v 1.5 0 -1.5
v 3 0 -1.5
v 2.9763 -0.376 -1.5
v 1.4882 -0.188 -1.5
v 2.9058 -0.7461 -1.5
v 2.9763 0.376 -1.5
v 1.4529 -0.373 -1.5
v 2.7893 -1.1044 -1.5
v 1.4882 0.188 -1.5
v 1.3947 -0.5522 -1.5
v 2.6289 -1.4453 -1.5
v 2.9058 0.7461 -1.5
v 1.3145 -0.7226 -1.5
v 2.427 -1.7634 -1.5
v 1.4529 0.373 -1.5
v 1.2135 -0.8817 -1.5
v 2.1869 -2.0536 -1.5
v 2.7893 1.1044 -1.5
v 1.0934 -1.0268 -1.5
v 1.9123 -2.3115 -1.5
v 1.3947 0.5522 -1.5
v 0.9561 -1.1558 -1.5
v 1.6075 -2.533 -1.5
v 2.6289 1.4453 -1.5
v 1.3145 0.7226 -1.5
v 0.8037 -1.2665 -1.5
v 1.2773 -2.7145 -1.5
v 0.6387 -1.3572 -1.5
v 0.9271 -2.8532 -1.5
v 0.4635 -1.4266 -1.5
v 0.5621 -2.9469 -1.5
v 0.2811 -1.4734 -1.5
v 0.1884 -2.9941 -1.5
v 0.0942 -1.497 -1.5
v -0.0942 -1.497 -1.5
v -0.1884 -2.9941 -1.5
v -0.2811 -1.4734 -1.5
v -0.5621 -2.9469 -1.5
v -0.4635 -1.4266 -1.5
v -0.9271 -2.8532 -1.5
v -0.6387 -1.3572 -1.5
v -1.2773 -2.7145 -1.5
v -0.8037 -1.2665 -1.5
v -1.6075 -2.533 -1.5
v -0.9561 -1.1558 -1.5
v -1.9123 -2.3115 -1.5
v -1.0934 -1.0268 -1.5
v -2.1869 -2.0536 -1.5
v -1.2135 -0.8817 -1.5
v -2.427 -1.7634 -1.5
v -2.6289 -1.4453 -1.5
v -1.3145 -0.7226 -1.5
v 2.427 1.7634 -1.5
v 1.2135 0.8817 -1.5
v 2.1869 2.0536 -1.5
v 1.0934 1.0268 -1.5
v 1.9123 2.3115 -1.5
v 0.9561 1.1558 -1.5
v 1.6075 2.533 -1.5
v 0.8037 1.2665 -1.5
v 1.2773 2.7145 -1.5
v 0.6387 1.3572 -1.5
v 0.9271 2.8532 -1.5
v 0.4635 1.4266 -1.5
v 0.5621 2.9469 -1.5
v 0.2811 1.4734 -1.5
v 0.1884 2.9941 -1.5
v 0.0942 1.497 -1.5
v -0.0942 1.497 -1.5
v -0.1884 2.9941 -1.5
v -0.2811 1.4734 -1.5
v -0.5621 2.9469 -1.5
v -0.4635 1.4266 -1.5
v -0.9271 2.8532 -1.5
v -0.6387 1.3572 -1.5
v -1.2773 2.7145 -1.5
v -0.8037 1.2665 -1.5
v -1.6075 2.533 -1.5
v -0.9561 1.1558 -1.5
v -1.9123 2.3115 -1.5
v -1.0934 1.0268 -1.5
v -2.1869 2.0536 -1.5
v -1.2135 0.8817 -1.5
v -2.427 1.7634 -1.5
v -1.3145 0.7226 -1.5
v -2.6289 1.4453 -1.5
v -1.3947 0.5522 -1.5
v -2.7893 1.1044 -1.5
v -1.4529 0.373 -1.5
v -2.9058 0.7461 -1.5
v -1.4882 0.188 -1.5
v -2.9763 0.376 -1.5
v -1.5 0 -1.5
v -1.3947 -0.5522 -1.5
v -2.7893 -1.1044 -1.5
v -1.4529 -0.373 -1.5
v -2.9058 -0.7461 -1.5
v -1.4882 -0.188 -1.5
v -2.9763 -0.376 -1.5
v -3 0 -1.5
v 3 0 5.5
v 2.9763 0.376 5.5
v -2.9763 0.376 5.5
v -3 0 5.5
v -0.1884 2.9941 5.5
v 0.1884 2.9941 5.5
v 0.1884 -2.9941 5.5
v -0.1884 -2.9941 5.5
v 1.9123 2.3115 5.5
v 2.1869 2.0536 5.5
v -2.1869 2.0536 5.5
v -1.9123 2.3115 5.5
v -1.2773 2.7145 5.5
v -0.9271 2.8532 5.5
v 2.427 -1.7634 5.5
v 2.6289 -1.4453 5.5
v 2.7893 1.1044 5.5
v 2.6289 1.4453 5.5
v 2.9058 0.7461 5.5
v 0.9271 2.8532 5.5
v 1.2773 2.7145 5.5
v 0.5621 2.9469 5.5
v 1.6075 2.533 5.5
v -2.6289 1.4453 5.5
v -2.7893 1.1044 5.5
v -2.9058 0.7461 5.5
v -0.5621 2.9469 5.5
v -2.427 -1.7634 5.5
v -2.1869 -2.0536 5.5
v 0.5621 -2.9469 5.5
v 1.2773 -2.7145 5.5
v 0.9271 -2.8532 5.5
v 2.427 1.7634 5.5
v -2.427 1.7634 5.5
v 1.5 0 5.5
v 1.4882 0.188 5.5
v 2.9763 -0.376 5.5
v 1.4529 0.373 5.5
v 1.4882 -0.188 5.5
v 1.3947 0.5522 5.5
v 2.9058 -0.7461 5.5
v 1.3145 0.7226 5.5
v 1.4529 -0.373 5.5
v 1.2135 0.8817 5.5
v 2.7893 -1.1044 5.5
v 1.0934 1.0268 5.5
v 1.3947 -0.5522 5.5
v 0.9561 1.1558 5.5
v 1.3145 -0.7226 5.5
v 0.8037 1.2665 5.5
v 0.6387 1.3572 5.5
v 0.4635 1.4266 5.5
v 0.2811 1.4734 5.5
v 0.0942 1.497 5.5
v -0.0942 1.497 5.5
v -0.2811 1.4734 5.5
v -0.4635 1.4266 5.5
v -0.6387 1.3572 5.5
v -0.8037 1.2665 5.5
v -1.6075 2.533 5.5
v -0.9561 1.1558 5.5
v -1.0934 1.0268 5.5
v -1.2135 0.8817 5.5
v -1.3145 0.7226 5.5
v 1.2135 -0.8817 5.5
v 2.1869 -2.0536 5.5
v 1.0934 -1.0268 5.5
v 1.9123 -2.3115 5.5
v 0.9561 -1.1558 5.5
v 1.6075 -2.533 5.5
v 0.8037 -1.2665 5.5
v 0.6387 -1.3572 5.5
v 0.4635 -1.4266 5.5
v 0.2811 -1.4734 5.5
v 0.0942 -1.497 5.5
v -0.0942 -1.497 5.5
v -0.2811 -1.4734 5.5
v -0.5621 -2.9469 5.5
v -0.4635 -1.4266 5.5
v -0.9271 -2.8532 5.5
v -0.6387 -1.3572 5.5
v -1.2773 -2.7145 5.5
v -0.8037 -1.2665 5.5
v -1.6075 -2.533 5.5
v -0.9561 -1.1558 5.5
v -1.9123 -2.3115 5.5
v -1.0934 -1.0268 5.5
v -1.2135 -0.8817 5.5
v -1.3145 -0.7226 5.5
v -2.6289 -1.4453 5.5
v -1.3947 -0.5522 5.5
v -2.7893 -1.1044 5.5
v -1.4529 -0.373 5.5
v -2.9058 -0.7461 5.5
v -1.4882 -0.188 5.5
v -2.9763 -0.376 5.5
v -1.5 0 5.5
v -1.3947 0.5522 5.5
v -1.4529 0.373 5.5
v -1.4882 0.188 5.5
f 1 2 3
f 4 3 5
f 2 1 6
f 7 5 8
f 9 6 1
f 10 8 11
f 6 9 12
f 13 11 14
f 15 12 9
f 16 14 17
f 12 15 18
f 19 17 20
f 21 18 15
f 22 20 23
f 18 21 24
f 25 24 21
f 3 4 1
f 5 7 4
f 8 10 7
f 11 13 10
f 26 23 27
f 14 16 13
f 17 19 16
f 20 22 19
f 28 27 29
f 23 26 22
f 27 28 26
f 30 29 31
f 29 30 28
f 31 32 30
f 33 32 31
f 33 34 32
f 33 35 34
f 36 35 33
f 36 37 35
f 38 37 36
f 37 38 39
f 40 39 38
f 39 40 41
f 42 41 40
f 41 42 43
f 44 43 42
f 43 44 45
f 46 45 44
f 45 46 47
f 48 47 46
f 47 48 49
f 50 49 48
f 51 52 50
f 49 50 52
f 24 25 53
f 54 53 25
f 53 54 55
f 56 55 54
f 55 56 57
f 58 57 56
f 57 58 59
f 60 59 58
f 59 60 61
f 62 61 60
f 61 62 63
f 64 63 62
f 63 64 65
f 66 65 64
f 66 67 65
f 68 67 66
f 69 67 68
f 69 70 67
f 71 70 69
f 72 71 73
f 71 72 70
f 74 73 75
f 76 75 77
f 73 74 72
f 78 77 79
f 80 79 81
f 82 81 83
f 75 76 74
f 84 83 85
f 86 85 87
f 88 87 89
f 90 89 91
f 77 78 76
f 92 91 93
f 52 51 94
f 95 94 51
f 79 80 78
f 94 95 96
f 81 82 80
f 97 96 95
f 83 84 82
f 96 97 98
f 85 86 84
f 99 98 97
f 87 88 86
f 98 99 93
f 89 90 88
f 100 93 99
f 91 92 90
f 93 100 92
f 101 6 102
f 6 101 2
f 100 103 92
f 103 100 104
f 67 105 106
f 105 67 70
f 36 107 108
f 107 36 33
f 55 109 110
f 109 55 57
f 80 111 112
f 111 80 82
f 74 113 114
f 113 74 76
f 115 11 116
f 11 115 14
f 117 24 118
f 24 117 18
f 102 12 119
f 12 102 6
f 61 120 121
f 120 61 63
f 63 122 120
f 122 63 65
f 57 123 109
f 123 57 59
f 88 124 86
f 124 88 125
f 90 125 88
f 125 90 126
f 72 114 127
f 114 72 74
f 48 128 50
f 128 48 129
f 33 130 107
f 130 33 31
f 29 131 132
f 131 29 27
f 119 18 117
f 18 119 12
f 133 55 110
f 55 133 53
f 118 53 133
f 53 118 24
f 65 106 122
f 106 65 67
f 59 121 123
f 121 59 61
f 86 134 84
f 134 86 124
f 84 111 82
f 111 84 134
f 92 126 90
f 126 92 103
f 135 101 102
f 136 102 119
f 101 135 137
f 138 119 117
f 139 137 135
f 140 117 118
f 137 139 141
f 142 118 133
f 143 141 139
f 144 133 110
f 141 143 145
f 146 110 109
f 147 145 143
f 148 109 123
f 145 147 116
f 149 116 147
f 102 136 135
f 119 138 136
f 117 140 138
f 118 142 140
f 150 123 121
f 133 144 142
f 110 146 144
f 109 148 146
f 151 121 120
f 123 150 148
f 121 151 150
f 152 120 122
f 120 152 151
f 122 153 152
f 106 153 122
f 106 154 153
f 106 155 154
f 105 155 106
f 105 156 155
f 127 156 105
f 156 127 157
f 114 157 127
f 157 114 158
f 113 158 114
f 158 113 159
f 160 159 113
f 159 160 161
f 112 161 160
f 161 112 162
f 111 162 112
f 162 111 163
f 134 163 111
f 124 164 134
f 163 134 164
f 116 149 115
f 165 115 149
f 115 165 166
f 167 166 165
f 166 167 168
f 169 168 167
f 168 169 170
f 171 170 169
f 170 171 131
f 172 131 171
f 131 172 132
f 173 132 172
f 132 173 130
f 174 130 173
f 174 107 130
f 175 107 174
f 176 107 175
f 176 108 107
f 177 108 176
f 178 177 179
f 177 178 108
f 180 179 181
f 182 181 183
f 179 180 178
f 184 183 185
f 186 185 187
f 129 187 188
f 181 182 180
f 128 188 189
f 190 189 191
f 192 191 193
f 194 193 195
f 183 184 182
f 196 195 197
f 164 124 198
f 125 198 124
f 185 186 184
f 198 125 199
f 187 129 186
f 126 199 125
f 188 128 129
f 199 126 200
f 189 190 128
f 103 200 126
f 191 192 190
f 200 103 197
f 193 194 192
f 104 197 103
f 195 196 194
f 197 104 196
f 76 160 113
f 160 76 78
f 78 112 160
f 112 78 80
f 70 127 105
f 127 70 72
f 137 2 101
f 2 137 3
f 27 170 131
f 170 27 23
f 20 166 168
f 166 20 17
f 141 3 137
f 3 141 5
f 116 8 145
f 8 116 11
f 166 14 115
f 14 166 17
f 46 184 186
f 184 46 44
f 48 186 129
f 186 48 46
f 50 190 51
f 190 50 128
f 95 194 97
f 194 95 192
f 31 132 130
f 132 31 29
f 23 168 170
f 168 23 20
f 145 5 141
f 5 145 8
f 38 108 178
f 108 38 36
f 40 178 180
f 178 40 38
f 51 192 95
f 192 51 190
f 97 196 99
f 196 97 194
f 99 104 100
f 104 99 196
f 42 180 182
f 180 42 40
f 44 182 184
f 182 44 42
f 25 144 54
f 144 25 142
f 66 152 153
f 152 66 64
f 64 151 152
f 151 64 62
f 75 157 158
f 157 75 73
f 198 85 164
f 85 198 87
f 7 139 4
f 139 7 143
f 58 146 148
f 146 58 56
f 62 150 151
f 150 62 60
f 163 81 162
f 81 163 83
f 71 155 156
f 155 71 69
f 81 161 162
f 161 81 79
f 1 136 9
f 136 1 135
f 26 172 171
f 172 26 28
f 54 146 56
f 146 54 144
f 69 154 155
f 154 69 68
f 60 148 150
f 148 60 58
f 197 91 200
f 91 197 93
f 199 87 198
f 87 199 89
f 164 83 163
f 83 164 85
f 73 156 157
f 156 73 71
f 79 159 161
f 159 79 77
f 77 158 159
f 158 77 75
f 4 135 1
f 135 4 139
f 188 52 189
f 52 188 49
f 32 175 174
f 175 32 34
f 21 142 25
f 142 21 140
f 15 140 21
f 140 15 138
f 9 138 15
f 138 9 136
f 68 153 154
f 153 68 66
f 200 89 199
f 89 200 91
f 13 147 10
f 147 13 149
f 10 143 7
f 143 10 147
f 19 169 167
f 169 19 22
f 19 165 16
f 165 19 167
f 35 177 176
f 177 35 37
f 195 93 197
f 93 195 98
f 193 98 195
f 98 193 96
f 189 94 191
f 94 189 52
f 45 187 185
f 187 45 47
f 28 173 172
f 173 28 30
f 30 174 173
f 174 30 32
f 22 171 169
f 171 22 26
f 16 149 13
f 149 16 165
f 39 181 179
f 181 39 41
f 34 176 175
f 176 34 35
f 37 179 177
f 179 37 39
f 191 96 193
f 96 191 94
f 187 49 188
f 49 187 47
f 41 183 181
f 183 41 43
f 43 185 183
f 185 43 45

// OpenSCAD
$fn = 50;


difference() {
	union() {
		translate(v = [0, 0, -1.5000000000]) {
			cylinder(h = 3, r = 1.0000000000);
		}
		translate(v = [0, 0, -1.5000000000]) {
			cylinder(h = 7, r = 3.0000000000);
		}
	}
	union() {
		translate(v = [0, 0, -50.0000000000]) {
			cylinder(h = 100, r = 1.5000000000);
		}
	}
}
